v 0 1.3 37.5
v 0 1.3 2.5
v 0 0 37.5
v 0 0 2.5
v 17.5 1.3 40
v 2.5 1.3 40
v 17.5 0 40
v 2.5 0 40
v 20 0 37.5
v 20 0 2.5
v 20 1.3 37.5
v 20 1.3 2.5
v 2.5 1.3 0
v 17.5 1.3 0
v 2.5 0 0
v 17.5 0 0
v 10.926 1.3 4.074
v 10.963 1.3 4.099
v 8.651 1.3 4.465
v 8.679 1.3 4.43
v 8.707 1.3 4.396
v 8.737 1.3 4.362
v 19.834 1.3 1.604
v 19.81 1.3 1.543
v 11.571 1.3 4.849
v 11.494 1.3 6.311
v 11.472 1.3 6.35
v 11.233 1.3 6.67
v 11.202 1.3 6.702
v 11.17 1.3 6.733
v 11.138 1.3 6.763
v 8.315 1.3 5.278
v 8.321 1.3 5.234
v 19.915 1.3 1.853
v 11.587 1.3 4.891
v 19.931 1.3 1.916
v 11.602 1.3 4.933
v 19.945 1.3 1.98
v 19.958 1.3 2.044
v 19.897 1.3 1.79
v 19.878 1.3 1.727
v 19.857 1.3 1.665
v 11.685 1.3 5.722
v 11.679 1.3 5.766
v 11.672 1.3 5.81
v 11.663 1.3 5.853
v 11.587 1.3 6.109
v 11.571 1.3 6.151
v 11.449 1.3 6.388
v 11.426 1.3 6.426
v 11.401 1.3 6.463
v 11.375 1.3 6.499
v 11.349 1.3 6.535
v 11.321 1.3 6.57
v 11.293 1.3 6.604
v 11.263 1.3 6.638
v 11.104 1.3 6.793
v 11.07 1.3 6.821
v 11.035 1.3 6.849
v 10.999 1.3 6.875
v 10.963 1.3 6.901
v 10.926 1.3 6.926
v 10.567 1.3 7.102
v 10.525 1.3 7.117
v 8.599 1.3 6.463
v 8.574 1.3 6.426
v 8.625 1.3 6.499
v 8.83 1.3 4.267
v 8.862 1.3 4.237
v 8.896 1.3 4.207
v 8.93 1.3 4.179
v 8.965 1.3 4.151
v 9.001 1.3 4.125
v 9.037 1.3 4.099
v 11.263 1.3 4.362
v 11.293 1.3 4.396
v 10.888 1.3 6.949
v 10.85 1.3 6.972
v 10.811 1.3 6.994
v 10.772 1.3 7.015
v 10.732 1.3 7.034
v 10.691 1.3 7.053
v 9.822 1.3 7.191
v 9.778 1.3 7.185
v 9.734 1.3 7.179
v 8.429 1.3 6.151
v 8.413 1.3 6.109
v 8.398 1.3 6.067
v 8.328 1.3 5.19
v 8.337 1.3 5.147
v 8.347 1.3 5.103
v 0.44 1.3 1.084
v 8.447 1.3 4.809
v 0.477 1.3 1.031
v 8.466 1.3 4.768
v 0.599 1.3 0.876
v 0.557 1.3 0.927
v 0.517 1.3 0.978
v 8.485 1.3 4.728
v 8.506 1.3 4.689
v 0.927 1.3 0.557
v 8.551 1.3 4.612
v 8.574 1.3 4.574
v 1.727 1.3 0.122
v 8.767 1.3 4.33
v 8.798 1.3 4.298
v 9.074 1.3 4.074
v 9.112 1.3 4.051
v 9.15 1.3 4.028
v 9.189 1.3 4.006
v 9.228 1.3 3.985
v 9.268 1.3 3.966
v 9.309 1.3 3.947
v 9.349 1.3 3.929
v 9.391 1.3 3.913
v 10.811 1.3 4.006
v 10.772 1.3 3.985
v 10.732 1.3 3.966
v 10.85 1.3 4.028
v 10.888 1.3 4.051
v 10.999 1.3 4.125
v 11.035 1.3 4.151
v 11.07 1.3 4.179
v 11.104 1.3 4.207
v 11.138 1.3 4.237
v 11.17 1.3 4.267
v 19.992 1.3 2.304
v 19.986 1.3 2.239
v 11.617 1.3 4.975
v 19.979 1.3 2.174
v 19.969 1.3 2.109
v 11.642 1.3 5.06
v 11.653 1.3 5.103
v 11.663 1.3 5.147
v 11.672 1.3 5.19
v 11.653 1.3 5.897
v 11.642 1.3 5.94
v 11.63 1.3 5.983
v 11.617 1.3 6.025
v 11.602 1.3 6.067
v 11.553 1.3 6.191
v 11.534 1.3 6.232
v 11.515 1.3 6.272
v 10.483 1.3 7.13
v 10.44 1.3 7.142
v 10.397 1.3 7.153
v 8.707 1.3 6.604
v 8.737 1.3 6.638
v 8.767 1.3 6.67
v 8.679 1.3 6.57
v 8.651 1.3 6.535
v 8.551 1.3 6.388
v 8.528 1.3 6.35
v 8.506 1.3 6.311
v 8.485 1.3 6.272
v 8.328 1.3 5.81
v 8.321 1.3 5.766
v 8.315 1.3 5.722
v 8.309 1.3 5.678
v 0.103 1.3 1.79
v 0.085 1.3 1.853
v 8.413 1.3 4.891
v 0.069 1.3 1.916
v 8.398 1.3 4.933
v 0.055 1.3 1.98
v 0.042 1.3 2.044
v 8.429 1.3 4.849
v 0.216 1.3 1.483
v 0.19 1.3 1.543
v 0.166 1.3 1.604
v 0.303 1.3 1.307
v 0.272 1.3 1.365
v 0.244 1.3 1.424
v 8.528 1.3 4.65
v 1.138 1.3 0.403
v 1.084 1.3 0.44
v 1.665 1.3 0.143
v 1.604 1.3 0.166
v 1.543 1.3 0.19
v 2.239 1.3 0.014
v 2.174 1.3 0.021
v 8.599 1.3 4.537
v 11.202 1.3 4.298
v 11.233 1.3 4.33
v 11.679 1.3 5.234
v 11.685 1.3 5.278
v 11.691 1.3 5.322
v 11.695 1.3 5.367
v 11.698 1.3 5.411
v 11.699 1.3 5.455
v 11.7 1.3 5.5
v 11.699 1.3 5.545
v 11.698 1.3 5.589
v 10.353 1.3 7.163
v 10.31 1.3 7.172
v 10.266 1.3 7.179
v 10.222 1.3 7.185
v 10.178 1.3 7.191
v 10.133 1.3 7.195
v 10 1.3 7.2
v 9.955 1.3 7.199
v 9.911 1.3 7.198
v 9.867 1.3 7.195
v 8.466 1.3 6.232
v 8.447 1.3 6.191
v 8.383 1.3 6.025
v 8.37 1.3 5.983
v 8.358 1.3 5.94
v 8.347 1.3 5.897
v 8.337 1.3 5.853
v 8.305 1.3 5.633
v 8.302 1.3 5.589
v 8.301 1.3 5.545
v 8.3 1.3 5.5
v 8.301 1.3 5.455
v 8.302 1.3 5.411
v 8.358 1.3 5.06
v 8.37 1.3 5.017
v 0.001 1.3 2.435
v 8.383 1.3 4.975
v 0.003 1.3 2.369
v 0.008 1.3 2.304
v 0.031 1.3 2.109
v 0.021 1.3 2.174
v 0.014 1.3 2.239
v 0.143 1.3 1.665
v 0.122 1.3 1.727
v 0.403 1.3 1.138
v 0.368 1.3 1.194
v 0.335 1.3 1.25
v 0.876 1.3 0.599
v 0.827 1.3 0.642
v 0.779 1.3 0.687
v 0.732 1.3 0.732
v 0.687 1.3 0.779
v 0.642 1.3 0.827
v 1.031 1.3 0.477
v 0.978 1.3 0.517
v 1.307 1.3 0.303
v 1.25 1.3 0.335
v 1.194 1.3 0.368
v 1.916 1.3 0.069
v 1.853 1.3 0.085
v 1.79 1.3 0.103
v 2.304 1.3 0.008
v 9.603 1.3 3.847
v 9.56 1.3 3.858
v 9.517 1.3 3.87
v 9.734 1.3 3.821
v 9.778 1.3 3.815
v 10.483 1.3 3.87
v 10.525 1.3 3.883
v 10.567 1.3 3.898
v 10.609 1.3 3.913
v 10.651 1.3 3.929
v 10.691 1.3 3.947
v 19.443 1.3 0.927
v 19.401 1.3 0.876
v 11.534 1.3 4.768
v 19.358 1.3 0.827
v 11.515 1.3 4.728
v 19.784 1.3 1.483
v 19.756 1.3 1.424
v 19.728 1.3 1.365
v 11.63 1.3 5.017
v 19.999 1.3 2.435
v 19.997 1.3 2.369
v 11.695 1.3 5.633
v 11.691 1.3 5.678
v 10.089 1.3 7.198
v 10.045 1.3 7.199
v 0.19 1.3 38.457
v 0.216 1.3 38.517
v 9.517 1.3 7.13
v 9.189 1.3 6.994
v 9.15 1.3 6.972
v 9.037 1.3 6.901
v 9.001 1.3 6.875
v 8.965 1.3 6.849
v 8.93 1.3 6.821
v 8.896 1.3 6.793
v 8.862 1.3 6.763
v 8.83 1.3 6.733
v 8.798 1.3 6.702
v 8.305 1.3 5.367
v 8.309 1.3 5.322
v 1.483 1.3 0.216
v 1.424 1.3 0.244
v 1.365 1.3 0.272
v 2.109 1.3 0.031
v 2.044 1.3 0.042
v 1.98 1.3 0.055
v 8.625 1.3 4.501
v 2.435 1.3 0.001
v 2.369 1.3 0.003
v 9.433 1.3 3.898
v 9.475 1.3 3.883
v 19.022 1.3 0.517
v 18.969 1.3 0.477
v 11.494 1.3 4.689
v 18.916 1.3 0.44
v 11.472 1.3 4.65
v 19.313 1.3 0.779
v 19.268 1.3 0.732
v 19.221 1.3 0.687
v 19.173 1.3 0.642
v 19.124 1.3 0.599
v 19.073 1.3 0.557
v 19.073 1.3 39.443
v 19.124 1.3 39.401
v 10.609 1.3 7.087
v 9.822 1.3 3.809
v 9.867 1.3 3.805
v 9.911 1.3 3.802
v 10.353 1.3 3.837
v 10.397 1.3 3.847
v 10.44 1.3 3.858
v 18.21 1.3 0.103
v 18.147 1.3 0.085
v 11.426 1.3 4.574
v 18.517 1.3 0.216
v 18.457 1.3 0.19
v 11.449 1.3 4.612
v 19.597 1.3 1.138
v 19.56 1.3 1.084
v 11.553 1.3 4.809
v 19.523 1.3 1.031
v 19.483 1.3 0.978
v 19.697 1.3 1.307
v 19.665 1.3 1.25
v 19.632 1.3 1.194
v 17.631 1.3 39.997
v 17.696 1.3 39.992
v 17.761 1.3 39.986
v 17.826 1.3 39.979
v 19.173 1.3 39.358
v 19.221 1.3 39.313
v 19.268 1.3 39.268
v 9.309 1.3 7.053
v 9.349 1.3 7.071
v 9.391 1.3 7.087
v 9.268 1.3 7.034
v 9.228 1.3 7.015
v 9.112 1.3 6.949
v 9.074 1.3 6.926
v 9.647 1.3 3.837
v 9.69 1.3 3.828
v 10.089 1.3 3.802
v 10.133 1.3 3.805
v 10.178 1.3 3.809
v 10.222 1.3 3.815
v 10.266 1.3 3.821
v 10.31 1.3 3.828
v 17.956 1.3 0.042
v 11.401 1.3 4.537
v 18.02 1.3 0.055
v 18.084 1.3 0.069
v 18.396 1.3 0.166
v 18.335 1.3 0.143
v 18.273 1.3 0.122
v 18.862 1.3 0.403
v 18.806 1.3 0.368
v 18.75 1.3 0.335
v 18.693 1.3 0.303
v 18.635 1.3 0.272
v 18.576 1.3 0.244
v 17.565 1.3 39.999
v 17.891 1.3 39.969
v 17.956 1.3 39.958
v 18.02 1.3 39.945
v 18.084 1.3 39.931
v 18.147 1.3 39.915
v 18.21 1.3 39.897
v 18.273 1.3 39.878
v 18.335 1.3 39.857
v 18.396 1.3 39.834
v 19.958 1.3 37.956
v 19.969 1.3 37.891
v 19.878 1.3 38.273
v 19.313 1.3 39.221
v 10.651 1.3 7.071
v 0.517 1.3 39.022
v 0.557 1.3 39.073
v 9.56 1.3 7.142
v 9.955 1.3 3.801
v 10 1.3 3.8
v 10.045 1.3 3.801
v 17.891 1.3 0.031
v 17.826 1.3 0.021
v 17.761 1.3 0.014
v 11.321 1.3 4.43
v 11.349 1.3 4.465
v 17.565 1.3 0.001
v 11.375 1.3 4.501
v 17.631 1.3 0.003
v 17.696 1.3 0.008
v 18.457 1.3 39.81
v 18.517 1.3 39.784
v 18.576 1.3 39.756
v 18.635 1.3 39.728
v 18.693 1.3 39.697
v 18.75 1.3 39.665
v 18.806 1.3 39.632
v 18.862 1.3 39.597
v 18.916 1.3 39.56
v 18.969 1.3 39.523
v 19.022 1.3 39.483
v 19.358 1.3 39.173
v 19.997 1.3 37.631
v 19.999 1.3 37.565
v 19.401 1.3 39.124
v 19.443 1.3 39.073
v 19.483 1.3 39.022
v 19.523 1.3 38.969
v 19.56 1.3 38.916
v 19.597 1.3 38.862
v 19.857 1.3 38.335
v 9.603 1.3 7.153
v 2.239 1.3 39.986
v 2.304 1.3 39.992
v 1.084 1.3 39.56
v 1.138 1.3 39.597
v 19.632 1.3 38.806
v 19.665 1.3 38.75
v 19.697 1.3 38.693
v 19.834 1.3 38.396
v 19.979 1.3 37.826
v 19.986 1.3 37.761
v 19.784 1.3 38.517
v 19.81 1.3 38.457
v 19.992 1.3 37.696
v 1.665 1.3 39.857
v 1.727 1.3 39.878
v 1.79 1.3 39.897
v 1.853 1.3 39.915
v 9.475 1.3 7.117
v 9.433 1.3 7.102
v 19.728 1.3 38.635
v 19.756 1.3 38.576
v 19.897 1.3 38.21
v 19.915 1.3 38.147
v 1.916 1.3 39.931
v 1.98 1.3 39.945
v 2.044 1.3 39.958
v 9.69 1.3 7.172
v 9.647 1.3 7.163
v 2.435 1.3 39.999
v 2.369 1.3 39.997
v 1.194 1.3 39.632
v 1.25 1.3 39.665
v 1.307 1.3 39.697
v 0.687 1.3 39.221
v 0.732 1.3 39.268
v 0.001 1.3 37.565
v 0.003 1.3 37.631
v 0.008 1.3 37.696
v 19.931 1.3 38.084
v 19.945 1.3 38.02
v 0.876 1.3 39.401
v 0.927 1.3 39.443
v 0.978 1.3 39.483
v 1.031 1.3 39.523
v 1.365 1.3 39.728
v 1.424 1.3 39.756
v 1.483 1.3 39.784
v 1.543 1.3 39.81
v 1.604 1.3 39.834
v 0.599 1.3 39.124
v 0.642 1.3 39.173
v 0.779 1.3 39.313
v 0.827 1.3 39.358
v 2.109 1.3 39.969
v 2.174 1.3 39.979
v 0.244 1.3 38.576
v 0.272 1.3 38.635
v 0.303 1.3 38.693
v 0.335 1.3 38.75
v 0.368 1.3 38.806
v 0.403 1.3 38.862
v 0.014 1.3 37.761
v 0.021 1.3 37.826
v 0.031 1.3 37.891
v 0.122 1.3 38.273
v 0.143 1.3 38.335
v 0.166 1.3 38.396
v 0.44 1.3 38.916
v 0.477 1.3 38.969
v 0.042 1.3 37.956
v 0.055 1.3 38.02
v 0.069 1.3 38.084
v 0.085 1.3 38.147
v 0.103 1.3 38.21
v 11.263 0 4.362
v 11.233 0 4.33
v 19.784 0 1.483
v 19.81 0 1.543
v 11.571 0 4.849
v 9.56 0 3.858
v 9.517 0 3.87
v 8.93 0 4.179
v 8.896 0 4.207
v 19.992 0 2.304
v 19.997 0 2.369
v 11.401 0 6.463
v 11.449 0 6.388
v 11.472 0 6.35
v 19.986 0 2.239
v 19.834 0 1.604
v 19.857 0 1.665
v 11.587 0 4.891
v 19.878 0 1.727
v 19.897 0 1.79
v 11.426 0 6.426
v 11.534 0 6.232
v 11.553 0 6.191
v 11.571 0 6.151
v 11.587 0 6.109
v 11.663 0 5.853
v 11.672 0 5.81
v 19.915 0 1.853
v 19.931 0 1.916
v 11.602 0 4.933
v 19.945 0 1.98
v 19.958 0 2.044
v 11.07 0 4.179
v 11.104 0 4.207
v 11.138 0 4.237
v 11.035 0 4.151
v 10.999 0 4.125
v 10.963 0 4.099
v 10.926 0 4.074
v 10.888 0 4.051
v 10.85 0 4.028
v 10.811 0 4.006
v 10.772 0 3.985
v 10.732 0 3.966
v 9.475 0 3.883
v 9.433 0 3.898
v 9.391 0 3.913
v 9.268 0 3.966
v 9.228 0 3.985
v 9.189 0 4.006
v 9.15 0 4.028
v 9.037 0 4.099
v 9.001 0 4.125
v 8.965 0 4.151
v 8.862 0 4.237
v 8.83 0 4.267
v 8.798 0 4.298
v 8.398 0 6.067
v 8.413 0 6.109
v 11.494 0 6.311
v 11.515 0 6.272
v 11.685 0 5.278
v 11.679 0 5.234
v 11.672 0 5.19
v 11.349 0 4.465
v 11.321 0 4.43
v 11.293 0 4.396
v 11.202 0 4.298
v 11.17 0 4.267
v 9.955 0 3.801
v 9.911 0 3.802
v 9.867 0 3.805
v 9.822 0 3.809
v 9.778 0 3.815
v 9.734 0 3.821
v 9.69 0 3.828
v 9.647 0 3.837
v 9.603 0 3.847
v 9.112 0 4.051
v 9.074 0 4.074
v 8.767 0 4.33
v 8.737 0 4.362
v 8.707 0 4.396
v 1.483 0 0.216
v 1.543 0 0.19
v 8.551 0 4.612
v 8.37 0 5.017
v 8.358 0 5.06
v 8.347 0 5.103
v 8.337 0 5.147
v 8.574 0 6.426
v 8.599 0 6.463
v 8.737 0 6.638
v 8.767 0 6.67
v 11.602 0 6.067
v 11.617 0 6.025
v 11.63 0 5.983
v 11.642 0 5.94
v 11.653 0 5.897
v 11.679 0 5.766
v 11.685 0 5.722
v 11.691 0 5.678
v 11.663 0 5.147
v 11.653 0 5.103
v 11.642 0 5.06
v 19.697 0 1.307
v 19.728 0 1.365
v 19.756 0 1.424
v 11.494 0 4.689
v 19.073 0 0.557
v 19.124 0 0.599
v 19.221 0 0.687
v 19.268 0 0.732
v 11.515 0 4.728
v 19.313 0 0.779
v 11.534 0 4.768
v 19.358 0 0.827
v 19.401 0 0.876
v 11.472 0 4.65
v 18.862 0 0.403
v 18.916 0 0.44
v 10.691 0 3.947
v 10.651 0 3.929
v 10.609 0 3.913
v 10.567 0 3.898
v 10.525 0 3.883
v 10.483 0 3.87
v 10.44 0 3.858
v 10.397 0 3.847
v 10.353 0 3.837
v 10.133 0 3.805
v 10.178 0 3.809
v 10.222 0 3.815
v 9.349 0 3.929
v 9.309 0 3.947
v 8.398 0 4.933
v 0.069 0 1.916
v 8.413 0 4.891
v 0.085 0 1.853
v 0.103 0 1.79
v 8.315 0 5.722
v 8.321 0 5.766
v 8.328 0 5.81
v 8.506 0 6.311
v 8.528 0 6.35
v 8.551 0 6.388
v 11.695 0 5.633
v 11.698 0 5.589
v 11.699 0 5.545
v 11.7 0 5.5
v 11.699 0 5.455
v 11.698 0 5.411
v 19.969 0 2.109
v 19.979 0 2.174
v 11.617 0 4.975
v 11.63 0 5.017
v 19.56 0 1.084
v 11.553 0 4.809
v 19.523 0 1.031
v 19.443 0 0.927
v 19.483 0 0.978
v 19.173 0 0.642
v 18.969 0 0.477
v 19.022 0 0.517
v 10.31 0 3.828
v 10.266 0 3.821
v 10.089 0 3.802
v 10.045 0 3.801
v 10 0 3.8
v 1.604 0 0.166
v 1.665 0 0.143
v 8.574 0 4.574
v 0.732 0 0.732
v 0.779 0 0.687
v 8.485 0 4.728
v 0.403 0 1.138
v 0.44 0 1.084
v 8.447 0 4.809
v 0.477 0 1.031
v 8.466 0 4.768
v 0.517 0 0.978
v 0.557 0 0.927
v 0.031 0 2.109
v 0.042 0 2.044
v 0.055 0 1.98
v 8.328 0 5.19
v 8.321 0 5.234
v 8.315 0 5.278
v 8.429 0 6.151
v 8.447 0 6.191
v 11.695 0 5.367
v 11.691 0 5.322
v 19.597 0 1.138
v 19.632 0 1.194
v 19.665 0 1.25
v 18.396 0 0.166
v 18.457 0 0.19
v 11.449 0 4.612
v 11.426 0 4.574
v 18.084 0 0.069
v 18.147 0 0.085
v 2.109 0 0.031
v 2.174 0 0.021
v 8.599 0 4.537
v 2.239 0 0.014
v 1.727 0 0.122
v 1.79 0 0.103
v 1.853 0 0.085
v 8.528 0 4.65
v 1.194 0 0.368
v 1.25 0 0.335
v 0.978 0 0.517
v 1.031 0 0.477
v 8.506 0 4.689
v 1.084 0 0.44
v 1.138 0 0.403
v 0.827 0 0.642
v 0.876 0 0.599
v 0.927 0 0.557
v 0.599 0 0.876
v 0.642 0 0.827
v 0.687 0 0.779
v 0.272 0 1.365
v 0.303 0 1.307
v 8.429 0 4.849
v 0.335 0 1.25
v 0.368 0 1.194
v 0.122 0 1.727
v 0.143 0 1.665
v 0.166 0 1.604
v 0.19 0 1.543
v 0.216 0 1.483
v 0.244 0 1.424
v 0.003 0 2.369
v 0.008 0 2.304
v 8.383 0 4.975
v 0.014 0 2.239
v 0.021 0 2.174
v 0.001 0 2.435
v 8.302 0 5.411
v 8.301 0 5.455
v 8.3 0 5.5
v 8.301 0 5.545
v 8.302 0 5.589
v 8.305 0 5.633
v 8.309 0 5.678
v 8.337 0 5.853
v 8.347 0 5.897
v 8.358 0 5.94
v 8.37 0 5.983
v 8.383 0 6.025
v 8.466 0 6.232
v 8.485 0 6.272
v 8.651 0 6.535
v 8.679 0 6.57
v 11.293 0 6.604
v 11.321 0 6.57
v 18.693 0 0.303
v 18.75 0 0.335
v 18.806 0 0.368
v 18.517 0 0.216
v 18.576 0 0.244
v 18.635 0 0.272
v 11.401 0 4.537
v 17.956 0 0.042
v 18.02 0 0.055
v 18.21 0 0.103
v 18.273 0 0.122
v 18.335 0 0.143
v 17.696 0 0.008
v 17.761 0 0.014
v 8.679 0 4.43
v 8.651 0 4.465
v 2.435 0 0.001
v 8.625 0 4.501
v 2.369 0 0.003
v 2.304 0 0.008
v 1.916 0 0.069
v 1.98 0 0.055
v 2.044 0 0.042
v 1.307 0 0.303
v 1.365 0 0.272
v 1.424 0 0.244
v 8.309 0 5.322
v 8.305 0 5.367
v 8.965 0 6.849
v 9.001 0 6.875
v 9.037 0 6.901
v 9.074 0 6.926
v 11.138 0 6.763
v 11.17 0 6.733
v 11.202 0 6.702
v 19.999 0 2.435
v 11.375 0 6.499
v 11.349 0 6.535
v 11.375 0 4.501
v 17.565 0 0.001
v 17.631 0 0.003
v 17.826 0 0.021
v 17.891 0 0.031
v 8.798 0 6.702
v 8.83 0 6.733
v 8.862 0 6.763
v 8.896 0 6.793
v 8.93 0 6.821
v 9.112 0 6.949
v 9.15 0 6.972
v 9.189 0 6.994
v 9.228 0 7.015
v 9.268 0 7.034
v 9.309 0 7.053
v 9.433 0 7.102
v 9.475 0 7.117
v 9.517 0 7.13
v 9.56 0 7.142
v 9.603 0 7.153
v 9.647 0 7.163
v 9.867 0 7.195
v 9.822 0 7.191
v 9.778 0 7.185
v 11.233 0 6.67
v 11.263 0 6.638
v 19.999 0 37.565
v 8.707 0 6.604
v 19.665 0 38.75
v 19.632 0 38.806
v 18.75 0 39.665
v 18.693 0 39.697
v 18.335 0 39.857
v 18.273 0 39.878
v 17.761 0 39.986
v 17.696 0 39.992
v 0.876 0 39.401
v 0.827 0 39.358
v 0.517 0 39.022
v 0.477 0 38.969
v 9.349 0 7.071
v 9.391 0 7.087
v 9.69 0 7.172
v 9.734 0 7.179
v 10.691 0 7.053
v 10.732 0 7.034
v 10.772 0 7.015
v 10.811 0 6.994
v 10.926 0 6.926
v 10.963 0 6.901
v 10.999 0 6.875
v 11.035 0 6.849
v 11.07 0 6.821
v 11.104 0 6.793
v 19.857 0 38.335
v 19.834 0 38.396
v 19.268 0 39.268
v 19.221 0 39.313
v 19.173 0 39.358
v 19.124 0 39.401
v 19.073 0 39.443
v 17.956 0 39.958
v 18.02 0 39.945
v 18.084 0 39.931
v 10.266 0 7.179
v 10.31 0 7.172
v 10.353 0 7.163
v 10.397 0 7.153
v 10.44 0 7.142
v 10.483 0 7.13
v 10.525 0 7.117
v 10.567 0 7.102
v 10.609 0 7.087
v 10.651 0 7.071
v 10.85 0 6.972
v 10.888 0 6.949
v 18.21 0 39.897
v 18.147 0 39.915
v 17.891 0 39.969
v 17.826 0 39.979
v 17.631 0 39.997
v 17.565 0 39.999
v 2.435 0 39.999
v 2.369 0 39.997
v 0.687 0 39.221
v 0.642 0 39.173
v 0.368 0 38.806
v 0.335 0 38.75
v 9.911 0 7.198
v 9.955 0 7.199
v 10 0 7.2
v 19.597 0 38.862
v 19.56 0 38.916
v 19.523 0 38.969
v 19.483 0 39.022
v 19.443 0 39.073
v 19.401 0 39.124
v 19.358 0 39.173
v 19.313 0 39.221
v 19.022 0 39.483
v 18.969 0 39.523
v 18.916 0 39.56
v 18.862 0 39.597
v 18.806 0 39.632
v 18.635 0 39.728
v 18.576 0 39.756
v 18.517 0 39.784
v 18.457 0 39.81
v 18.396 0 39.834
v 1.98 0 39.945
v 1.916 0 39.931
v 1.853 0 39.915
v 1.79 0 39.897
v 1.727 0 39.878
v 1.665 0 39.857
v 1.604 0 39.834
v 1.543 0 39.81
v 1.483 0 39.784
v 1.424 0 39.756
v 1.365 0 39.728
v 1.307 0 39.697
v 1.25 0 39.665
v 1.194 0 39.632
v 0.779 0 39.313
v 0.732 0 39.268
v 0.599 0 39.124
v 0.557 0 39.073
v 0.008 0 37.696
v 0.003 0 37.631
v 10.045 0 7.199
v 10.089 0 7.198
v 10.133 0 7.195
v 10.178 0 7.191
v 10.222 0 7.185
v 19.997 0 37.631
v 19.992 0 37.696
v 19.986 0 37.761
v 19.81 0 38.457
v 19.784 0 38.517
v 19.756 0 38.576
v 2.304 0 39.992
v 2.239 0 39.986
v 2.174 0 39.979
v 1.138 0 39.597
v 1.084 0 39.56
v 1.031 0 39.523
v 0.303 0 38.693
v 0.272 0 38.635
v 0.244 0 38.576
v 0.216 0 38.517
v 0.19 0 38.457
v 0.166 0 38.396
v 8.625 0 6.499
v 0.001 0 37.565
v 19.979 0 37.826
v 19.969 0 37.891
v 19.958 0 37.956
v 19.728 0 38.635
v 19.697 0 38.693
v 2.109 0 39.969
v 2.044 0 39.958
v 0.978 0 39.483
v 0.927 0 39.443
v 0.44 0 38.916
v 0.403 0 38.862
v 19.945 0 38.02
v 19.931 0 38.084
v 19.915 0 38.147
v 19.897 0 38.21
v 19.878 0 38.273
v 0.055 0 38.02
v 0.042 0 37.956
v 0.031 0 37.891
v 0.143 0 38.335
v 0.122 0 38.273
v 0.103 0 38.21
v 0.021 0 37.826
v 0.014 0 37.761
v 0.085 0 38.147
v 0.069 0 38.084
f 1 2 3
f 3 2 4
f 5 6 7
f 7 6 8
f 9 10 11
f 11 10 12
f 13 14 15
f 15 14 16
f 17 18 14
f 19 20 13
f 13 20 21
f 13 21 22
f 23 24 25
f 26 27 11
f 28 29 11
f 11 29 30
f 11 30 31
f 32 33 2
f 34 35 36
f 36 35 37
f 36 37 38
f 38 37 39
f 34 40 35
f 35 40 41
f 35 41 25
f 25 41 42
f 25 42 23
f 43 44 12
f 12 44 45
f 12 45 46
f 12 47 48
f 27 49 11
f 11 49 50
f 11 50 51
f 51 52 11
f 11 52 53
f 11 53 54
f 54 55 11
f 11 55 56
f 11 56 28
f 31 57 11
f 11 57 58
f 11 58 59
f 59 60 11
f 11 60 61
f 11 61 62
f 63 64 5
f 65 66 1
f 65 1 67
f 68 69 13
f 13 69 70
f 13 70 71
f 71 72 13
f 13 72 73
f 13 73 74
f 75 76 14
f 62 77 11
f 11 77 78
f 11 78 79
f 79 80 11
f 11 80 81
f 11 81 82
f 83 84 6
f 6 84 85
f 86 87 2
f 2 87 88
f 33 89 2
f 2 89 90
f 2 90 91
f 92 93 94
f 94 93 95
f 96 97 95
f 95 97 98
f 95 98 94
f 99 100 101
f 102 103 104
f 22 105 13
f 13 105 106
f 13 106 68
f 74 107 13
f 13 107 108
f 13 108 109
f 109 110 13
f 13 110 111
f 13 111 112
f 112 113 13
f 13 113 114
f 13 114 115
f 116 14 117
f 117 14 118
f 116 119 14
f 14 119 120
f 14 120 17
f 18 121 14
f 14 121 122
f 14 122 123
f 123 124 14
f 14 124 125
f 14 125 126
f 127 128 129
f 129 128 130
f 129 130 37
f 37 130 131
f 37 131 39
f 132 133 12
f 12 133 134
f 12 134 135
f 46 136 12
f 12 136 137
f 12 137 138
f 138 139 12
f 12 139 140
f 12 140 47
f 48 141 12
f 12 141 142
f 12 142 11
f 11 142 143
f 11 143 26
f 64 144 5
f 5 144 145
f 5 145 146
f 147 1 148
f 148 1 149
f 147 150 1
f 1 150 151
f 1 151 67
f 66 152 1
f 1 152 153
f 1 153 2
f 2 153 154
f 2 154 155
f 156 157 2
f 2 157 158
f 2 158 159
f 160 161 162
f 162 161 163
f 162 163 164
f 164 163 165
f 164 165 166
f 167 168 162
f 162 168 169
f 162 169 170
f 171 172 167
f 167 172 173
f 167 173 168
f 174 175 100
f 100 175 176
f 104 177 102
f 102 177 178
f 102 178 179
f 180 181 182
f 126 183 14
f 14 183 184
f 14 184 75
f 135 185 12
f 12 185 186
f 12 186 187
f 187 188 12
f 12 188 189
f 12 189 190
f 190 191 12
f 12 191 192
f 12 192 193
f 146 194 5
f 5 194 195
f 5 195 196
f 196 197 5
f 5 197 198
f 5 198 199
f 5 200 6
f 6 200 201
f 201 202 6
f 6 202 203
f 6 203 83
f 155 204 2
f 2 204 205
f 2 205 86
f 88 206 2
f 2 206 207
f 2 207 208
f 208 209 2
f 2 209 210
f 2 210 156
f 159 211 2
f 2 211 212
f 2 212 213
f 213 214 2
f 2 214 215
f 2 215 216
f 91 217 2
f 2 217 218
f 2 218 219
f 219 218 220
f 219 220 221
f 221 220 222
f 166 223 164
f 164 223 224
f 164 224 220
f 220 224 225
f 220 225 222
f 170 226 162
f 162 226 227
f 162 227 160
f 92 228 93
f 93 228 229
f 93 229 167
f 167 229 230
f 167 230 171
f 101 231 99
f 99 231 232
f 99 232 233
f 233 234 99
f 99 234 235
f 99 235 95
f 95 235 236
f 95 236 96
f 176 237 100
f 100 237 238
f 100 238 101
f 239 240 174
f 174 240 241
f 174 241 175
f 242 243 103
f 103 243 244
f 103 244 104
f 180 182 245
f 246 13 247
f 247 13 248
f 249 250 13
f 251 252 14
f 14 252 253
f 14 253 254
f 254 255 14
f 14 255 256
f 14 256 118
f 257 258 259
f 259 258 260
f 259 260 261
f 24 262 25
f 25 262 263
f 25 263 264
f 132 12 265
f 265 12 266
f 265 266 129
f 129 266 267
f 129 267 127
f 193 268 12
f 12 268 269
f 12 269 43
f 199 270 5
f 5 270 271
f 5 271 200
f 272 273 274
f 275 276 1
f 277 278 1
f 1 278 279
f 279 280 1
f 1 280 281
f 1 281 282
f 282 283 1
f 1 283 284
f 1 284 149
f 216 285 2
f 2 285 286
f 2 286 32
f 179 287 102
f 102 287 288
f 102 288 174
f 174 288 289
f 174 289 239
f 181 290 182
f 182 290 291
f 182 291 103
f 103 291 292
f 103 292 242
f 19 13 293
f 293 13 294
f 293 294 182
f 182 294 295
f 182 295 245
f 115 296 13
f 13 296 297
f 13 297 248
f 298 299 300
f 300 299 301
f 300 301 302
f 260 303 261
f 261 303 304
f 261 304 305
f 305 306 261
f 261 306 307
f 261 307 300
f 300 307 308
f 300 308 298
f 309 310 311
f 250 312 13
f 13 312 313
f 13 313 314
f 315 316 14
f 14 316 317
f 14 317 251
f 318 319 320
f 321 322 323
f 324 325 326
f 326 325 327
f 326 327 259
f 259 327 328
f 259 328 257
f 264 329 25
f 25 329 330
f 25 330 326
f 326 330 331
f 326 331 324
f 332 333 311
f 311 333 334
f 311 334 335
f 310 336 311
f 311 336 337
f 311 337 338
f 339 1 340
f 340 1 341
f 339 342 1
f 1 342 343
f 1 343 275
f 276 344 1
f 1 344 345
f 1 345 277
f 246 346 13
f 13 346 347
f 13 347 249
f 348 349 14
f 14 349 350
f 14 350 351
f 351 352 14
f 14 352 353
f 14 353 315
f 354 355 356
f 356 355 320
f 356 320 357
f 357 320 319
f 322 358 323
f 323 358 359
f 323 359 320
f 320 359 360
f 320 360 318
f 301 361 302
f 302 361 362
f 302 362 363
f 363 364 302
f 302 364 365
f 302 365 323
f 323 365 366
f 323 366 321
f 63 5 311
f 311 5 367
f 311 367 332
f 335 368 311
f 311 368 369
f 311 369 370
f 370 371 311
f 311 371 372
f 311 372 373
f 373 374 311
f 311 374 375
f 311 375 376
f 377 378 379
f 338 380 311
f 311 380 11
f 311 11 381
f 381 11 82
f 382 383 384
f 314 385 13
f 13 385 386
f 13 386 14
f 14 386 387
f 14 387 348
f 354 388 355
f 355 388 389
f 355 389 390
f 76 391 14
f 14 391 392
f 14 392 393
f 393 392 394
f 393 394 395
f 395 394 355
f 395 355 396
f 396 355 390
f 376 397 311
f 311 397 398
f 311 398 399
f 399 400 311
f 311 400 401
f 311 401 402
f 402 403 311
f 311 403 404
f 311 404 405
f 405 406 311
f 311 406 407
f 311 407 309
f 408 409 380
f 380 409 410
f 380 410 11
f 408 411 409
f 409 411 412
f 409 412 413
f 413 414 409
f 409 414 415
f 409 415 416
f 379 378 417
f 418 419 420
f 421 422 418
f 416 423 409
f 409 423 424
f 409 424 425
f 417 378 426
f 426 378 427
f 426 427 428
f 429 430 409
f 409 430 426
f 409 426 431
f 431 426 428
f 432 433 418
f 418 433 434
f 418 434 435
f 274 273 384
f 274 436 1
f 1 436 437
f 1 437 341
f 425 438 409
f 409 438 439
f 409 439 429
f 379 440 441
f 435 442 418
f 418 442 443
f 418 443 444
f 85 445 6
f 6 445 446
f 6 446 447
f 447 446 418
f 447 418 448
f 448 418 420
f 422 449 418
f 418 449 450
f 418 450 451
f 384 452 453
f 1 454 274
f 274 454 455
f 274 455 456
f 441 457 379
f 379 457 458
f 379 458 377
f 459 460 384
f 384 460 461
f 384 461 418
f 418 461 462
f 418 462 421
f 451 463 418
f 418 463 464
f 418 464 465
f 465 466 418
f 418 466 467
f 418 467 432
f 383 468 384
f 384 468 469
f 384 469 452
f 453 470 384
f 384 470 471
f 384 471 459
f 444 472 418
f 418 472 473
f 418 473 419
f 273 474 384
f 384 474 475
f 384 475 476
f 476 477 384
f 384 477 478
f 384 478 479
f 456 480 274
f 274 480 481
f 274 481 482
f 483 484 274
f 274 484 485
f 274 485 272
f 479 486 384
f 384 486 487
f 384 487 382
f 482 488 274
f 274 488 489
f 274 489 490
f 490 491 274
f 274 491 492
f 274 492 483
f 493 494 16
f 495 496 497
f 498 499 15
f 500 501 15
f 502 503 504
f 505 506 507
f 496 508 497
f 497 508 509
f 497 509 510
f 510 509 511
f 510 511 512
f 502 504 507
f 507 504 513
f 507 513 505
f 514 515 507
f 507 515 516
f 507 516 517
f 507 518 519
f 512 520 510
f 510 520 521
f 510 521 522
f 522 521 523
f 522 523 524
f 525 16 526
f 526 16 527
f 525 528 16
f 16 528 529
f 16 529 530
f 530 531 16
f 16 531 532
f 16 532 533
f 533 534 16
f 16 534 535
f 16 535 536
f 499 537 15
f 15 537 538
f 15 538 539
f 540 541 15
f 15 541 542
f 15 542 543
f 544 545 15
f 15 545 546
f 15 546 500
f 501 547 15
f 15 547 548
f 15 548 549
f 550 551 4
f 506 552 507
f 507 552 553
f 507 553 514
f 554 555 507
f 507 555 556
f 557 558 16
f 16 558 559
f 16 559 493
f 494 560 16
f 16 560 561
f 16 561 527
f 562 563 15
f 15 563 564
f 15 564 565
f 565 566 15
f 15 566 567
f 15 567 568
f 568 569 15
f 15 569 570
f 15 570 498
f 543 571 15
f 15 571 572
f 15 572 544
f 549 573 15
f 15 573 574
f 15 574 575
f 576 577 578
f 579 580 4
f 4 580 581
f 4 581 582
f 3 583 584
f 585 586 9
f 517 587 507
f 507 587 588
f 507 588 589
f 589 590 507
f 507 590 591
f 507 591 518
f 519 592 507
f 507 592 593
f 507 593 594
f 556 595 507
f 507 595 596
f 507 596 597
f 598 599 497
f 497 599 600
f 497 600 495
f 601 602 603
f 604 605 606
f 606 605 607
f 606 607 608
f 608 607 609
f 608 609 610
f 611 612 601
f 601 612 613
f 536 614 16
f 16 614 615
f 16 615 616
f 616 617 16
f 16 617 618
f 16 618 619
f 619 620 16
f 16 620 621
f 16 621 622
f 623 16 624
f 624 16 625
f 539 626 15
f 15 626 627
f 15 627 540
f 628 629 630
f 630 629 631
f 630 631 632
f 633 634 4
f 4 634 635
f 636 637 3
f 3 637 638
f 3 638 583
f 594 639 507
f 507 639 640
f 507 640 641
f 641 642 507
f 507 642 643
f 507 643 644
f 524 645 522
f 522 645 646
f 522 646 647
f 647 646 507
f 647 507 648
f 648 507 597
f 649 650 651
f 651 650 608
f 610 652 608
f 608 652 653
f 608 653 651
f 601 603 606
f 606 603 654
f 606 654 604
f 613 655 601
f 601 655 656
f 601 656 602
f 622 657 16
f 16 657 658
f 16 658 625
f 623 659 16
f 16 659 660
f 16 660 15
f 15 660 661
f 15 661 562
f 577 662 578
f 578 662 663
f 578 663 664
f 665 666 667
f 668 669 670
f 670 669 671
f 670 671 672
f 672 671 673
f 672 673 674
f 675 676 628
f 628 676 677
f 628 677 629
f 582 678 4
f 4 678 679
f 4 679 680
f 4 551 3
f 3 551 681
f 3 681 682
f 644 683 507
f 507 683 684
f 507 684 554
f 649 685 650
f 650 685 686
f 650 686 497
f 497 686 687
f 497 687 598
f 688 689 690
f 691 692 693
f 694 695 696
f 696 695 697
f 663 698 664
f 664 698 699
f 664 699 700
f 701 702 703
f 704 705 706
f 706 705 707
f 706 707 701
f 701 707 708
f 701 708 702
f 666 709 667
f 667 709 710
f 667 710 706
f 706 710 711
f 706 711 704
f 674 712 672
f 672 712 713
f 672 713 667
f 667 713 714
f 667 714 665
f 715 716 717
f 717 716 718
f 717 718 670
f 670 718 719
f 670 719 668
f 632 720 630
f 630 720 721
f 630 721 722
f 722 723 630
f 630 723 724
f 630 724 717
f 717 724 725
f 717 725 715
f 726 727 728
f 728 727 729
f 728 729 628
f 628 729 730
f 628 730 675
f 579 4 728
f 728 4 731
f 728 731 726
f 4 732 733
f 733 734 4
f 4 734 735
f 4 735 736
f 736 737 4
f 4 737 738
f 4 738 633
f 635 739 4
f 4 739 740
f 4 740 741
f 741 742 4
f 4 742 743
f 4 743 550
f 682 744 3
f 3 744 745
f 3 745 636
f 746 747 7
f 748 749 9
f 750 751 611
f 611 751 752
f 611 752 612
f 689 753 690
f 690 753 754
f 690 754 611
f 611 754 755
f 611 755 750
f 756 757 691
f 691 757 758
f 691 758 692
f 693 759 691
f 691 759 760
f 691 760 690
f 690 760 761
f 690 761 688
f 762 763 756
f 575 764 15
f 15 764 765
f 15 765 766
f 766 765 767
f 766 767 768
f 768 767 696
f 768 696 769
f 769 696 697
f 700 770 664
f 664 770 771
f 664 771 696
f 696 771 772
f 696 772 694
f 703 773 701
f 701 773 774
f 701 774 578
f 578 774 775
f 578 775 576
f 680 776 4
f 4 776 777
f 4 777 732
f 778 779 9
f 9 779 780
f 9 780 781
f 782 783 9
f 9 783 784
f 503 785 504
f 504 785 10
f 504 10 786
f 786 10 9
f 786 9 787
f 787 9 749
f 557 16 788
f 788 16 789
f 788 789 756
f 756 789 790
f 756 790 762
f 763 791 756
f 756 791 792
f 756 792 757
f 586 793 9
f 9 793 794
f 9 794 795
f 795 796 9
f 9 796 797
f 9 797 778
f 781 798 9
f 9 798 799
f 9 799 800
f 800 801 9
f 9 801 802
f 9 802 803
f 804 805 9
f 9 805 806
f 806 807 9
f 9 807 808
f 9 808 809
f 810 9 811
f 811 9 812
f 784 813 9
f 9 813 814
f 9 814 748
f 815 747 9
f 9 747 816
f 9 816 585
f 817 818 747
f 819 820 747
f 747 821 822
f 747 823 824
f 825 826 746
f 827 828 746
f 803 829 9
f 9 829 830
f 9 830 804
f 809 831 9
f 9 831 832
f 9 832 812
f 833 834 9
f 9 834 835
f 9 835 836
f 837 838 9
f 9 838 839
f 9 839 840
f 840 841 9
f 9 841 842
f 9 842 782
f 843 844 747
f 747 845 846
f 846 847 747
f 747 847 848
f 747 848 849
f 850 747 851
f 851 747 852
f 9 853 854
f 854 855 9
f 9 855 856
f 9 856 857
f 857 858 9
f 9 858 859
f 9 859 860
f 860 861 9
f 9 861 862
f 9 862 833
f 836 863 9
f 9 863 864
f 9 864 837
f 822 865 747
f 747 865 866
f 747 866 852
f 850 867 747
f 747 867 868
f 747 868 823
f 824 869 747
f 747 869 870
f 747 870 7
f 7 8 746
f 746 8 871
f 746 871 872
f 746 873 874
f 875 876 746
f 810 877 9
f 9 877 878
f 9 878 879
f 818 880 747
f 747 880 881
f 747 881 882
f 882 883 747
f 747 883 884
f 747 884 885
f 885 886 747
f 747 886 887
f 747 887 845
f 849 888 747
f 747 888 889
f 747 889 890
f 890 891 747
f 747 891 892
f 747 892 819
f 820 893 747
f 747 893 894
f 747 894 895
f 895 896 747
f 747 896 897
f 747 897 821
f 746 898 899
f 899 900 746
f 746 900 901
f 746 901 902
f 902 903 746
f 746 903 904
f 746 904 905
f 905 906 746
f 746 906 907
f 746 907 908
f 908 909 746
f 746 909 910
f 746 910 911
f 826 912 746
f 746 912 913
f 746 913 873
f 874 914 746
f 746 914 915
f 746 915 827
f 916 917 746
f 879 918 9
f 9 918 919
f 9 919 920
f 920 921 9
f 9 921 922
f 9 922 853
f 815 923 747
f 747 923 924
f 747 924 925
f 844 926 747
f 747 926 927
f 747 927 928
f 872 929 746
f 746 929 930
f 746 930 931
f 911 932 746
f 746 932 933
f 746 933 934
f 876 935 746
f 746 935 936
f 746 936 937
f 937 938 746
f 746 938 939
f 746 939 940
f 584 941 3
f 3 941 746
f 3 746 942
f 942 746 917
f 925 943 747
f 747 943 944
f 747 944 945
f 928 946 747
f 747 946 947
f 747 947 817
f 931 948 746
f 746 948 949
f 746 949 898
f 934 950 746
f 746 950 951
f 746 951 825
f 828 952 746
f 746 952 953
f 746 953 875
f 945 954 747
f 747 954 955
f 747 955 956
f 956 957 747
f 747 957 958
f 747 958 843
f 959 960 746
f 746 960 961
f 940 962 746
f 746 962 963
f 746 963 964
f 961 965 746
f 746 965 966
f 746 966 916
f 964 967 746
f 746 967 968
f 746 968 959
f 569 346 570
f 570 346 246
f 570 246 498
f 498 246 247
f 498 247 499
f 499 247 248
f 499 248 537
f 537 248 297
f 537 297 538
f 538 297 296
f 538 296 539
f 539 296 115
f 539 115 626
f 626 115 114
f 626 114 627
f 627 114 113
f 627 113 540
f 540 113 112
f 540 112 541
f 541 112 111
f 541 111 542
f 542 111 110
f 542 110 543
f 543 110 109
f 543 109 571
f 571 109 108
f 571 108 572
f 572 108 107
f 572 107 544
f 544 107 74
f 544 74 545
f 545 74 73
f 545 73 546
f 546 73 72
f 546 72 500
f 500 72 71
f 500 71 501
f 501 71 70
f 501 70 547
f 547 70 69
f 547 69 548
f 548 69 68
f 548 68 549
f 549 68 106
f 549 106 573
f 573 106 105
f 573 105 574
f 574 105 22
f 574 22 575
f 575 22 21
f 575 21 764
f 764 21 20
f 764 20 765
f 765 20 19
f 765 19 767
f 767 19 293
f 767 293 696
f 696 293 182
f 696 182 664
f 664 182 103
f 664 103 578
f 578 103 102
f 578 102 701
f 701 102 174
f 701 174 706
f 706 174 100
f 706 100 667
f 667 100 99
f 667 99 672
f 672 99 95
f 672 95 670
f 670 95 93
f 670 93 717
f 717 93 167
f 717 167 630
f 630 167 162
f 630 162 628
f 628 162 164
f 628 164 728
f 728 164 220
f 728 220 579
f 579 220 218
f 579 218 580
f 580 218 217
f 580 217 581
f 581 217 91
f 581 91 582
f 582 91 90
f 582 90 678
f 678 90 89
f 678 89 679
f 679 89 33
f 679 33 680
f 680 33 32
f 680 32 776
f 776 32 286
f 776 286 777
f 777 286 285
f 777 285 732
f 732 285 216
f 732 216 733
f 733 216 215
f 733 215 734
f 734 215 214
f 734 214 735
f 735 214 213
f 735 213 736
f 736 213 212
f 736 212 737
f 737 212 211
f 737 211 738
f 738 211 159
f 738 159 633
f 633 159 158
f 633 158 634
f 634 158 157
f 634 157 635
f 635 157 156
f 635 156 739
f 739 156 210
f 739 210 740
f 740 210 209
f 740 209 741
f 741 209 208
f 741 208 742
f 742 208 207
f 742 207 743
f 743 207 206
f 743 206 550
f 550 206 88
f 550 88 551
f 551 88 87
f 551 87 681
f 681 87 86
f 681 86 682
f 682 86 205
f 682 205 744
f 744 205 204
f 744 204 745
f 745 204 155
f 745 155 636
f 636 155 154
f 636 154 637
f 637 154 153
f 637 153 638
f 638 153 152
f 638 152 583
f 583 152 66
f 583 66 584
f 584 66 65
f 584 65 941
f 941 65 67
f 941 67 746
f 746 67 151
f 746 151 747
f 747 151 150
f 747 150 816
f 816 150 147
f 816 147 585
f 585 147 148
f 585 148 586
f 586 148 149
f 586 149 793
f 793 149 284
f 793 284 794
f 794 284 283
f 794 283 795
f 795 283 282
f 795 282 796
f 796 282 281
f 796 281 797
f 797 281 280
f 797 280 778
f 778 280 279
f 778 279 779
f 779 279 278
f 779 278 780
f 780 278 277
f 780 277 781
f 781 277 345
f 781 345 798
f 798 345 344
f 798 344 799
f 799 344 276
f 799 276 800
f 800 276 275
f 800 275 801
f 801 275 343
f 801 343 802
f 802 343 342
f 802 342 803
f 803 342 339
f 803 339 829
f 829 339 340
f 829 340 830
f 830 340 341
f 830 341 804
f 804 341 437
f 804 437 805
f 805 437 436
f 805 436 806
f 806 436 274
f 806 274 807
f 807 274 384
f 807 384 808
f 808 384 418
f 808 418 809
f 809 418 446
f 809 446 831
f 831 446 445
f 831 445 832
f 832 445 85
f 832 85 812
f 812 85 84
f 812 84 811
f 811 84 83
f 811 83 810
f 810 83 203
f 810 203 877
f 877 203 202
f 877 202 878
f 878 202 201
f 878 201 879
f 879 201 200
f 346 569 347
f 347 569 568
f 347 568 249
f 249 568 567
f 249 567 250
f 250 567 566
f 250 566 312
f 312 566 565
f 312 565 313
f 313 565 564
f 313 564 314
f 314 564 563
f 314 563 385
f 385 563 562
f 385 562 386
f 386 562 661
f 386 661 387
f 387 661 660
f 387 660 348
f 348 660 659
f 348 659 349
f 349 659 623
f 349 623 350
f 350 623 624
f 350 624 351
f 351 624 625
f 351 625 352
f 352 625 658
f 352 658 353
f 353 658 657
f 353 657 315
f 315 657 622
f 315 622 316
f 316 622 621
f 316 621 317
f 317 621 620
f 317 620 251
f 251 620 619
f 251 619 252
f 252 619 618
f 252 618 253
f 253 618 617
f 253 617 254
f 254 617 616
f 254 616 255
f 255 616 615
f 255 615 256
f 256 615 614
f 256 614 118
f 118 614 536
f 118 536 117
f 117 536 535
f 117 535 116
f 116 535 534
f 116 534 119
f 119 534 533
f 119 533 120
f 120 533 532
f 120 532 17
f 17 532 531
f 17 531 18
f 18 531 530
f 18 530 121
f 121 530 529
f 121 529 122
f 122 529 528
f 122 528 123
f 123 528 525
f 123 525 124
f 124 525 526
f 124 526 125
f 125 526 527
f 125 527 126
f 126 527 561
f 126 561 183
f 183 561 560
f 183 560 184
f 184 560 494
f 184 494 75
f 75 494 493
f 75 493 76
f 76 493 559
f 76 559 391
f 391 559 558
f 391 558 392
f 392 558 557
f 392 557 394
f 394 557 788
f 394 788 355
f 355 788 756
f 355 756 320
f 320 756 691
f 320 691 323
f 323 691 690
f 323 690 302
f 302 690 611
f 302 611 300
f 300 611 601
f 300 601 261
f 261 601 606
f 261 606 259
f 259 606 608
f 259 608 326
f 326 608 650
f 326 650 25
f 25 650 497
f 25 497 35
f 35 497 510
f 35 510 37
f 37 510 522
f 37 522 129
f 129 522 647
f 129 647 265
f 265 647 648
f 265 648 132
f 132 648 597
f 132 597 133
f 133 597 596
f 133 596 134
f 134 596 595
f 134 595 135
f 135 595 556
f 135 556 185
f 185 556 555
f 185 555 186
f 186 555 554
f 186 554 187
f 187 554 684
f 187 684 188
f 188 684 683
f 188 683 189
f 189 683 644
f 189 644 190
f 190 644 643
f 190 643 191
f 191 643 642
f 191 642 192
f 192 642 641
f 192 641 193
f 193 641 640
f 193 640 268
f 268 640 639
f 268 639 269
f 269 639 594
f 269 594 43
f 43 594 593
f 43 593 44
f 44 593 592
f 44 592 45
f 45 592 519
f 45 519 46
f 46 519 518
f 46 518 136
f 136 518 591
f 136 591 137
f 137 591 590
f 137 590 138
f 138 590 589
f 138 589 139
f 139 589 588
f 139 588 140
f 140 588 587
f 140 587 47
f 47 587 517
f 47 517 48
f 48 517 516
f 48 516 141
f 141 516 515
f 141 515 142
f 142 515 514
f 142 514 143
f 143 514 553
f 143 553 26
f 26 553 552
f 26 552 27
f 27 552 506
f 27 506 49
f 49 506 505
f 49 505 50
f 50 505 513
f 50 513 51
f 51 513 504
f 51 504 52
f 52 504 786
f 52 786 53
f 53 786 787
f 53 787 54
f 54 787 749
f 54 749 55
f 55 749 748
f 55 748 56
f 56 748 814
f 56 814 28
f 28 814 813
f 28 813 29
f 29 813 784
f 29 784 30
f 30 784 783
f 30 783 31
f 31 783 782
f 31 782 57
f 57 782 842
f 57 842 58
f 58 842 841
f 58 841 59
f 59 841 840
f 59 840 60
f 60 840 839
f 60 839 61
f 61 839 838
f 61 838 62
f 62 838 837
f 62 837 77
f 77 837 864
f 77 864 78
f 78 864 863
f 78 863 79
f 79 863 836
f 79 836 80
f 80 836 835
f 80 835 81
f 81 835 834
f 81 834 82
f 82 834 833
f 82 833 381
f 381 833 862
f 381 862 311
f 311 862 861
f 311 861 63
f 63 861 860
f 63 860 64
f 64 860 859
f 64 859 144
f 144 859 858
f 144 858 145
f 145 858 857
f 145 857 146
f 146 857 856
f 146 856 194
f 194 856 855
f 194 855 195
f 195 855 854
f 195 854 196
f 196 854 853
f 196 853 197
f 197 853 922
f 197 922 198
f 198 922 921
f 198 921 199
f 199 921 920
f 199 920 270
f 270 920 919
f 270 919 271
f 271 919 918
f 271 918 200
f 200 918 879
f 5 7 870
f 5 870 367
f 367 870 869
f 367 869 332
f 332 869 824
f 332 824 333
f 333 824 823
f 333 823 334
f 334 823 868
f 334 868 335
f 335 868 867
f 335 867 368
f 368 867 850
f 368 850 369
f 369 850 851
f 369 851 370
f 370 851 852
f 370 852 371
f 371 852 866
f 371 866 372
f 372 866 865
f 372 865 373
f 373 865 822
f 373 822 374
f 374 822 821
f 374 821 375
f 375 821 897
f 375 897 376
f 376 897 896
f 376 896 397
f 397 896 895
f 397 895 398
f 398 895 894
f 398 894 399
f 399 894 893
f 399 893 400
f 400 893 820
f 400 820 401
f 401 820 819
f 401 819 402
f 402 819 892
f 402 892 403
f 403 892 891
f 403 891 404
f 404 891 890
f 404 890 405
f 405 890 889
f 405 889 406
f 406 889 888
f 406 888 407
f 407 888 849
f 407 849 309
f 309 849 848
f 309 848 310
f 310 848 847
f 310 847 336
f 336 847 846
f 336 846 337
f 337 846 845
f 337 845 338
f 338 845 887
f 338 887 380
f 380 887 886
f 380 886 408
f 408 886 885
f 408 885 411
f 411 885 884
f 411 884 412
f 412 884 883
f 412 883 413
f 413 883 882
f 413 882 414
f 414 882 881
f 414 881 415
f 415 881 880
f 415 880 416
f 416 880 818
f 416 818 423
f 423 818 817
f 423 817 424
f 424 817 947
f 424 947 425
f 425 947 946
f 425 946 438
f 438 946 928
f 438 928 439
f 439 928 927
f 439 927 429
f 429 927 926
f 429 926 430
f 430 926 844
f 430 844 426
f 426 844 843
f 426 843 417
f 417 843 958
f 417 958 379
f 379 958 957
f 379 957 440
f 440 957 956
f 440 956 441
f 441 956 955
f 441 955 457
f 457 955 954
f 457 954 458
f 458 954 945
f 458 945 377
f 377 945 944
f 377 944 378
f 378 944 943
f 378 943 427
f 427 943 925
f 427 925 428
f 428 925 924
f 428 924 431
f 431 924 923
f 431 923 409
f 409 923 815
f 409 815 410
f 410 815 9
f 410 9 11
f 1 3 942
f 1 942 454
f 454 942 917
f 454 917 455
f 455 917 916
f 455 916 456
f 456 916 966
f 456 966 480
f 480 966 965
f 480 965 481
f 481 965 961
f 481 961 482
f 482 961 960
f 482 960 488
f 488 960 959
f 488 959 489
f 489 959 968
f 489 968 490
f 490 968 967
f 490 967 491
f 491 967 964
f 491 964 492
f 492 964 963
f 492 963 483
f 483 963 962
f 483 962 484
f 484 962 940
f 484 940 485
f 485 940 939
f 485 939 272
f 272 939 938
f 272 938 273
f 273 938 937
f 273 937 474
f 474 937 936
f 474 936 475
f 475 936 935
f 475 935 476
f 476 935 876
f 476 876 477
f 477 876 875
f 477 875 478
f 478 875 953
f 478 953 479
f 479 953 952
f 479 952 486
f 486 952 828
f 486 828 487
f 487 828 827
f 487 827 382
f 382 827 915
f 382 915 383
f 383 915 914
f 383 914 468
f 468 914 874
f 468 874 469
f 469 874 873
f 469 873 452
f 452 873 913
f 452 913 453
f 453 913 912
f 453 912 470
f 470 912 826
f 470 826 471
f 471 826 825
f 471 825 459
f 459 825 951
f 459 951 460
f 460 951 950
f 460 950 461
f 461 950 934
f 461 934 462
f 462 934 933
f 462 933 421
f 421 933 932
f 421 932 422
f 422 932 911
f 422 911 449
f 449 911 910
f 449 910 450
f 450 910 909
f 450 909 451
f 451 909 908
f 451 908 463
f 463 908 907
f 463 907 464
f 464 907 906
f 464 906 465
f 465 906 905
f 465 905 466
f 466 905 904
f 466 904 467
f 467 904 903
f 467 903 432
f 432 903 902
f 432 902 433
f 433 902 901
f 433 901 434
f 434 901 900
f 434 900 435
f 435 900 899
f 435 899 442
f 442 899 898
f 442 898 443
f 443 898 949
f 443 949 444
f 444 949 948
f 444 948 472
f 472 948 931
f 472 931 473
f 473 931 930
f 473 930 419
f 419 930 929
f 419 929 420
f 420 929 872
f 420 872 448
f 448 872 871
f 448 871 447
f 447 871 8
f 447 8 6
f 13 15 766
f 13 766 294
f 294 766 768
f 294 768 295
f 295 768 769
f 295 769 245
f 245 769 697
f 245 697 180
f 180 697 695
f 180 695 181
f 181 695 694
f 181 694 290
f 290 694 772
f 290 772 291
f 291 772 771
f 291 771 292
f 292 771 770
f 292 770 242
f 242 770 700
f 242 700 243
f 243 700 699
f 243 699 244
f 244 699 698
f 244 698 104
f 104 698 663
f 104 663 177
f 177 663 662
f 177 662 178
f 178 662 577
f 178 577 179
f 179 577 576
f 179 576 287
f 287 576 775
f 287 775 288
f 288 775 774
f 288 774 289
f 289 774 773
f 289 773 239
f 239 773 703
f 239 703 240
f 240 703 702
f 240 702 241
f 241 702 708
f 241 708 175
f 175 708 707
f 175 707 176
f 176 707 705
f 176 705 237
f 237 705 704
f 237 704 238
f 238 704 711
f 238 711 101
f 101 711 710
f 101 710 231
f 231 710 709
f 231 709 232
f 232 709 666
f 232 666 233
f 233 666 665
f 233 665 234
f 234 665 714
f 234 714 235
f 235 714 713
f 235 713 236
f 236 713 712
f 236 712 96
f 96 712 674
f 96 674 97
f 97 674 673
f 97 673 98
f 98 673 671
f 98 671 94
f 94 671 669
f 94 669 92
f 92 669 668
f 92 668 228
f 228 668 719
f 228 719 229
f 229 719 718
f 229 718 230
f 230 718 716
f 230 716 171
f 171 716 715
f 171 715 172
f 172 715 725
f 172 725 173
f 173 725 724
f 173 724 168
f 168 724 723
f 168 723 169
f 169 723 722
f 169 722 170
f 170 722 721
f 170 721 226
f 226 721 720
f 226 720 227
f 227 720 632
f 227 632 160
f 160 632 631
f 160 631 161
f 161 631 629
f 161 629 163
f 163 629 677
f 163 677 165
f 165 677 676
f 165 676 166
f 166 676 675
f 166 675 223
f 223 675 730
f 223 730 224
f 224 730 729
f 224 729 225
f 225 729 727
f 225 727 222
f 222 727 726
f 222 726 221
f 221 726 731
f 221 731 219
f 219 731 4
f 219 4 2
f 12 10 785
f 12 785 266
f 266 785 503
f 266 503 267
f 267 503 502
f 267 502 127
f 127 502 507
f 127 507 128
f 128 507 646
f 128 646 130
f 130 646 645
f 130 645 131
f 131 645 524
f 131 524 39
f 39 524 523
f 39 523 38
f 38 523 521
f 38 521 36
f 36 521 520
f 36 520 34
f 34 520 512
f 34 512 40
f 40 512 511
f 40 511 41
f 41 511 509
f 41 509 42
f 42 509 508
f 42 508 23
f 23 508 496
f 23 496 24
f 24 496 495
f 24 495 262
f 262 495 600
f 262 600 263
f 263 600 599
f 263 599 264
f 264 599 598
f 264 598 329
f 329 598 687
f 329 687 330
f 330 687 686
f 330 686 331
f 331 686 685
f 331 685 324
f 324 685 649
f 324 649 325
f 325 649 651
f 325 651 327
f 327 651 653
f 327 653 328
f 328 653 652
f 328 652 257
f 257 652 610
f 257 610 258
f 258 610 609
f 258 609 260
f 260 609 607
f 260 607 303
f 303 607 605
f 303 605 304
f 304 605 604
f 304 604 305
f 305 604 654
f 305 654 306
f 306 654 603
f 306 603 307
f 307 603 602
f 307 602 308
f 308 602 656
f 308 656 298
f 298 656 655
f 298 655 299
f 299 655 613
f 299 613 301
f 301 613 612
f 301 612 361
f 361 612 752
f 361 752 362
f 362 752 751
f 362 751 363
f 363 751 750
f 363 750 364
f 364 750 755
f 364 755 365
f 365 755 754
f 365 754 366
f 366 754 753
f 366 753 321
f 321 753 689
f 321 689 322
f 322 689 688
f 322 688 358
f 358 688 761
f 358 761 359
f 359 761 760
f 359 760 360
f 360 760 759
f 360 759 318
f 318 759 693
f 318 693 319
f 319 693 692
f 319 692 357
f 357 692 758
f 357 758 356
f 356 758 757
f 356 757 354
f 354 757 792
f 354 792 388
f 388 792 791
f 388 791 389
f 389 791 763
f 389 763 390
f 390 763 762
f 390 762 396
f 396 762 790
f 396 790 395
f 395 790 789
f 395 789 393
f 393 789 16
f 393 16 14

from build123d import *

# Parameters (mm, degrees)
SKETCH1_W                = 20
SKETCH1_H                = 40
BOSS_EXTRUDE1_DEPTH      = 1.3
M3_CLEARANCE_HOLE1_D     = 3.4
M3_CLEARANCE_HOLE1_DEPTH = 1.3
FILLET1_R                = 2.5


with BuildPart() as part:
    # Sketch1 → Boss-Extrude1 (new body)
    with BuildSketch(Plane(origin=(0, 0, 0), x_dir=(1, 0, 0), z_dir=(0, 1, 0))):
        with Locations((10, -20)):
            Rectangle(SKETCH1_W, SKETCH1_H)
    extrude(amount=BOSS_EXTRUDE1_DEPTH)

    # M3 Clearance Hole1
    with Locations(Plane(origin=(0, 1.3, 0), x_dir=(1, 0, 0), z_dir=(0, 1, 0))):
        with Locations((10, -5.5)):
            Hole(M3_CLEARANCE_HOLE1_D / 2, depth=M3_CLEARANCE_HOLE1_DEPTH)

    # Fillet1
    fillet1_edges = [part.edges().sort_by_distance(p)[0] for p in [
        (0, 0.65, 0),
        (20, 0.65, 0),
        (20, 0.65, 40),
        (0, 0.65, 40),
    ]]
    fillet(fillet1_edges, radius=FILLET1_R)


solid = part.part
